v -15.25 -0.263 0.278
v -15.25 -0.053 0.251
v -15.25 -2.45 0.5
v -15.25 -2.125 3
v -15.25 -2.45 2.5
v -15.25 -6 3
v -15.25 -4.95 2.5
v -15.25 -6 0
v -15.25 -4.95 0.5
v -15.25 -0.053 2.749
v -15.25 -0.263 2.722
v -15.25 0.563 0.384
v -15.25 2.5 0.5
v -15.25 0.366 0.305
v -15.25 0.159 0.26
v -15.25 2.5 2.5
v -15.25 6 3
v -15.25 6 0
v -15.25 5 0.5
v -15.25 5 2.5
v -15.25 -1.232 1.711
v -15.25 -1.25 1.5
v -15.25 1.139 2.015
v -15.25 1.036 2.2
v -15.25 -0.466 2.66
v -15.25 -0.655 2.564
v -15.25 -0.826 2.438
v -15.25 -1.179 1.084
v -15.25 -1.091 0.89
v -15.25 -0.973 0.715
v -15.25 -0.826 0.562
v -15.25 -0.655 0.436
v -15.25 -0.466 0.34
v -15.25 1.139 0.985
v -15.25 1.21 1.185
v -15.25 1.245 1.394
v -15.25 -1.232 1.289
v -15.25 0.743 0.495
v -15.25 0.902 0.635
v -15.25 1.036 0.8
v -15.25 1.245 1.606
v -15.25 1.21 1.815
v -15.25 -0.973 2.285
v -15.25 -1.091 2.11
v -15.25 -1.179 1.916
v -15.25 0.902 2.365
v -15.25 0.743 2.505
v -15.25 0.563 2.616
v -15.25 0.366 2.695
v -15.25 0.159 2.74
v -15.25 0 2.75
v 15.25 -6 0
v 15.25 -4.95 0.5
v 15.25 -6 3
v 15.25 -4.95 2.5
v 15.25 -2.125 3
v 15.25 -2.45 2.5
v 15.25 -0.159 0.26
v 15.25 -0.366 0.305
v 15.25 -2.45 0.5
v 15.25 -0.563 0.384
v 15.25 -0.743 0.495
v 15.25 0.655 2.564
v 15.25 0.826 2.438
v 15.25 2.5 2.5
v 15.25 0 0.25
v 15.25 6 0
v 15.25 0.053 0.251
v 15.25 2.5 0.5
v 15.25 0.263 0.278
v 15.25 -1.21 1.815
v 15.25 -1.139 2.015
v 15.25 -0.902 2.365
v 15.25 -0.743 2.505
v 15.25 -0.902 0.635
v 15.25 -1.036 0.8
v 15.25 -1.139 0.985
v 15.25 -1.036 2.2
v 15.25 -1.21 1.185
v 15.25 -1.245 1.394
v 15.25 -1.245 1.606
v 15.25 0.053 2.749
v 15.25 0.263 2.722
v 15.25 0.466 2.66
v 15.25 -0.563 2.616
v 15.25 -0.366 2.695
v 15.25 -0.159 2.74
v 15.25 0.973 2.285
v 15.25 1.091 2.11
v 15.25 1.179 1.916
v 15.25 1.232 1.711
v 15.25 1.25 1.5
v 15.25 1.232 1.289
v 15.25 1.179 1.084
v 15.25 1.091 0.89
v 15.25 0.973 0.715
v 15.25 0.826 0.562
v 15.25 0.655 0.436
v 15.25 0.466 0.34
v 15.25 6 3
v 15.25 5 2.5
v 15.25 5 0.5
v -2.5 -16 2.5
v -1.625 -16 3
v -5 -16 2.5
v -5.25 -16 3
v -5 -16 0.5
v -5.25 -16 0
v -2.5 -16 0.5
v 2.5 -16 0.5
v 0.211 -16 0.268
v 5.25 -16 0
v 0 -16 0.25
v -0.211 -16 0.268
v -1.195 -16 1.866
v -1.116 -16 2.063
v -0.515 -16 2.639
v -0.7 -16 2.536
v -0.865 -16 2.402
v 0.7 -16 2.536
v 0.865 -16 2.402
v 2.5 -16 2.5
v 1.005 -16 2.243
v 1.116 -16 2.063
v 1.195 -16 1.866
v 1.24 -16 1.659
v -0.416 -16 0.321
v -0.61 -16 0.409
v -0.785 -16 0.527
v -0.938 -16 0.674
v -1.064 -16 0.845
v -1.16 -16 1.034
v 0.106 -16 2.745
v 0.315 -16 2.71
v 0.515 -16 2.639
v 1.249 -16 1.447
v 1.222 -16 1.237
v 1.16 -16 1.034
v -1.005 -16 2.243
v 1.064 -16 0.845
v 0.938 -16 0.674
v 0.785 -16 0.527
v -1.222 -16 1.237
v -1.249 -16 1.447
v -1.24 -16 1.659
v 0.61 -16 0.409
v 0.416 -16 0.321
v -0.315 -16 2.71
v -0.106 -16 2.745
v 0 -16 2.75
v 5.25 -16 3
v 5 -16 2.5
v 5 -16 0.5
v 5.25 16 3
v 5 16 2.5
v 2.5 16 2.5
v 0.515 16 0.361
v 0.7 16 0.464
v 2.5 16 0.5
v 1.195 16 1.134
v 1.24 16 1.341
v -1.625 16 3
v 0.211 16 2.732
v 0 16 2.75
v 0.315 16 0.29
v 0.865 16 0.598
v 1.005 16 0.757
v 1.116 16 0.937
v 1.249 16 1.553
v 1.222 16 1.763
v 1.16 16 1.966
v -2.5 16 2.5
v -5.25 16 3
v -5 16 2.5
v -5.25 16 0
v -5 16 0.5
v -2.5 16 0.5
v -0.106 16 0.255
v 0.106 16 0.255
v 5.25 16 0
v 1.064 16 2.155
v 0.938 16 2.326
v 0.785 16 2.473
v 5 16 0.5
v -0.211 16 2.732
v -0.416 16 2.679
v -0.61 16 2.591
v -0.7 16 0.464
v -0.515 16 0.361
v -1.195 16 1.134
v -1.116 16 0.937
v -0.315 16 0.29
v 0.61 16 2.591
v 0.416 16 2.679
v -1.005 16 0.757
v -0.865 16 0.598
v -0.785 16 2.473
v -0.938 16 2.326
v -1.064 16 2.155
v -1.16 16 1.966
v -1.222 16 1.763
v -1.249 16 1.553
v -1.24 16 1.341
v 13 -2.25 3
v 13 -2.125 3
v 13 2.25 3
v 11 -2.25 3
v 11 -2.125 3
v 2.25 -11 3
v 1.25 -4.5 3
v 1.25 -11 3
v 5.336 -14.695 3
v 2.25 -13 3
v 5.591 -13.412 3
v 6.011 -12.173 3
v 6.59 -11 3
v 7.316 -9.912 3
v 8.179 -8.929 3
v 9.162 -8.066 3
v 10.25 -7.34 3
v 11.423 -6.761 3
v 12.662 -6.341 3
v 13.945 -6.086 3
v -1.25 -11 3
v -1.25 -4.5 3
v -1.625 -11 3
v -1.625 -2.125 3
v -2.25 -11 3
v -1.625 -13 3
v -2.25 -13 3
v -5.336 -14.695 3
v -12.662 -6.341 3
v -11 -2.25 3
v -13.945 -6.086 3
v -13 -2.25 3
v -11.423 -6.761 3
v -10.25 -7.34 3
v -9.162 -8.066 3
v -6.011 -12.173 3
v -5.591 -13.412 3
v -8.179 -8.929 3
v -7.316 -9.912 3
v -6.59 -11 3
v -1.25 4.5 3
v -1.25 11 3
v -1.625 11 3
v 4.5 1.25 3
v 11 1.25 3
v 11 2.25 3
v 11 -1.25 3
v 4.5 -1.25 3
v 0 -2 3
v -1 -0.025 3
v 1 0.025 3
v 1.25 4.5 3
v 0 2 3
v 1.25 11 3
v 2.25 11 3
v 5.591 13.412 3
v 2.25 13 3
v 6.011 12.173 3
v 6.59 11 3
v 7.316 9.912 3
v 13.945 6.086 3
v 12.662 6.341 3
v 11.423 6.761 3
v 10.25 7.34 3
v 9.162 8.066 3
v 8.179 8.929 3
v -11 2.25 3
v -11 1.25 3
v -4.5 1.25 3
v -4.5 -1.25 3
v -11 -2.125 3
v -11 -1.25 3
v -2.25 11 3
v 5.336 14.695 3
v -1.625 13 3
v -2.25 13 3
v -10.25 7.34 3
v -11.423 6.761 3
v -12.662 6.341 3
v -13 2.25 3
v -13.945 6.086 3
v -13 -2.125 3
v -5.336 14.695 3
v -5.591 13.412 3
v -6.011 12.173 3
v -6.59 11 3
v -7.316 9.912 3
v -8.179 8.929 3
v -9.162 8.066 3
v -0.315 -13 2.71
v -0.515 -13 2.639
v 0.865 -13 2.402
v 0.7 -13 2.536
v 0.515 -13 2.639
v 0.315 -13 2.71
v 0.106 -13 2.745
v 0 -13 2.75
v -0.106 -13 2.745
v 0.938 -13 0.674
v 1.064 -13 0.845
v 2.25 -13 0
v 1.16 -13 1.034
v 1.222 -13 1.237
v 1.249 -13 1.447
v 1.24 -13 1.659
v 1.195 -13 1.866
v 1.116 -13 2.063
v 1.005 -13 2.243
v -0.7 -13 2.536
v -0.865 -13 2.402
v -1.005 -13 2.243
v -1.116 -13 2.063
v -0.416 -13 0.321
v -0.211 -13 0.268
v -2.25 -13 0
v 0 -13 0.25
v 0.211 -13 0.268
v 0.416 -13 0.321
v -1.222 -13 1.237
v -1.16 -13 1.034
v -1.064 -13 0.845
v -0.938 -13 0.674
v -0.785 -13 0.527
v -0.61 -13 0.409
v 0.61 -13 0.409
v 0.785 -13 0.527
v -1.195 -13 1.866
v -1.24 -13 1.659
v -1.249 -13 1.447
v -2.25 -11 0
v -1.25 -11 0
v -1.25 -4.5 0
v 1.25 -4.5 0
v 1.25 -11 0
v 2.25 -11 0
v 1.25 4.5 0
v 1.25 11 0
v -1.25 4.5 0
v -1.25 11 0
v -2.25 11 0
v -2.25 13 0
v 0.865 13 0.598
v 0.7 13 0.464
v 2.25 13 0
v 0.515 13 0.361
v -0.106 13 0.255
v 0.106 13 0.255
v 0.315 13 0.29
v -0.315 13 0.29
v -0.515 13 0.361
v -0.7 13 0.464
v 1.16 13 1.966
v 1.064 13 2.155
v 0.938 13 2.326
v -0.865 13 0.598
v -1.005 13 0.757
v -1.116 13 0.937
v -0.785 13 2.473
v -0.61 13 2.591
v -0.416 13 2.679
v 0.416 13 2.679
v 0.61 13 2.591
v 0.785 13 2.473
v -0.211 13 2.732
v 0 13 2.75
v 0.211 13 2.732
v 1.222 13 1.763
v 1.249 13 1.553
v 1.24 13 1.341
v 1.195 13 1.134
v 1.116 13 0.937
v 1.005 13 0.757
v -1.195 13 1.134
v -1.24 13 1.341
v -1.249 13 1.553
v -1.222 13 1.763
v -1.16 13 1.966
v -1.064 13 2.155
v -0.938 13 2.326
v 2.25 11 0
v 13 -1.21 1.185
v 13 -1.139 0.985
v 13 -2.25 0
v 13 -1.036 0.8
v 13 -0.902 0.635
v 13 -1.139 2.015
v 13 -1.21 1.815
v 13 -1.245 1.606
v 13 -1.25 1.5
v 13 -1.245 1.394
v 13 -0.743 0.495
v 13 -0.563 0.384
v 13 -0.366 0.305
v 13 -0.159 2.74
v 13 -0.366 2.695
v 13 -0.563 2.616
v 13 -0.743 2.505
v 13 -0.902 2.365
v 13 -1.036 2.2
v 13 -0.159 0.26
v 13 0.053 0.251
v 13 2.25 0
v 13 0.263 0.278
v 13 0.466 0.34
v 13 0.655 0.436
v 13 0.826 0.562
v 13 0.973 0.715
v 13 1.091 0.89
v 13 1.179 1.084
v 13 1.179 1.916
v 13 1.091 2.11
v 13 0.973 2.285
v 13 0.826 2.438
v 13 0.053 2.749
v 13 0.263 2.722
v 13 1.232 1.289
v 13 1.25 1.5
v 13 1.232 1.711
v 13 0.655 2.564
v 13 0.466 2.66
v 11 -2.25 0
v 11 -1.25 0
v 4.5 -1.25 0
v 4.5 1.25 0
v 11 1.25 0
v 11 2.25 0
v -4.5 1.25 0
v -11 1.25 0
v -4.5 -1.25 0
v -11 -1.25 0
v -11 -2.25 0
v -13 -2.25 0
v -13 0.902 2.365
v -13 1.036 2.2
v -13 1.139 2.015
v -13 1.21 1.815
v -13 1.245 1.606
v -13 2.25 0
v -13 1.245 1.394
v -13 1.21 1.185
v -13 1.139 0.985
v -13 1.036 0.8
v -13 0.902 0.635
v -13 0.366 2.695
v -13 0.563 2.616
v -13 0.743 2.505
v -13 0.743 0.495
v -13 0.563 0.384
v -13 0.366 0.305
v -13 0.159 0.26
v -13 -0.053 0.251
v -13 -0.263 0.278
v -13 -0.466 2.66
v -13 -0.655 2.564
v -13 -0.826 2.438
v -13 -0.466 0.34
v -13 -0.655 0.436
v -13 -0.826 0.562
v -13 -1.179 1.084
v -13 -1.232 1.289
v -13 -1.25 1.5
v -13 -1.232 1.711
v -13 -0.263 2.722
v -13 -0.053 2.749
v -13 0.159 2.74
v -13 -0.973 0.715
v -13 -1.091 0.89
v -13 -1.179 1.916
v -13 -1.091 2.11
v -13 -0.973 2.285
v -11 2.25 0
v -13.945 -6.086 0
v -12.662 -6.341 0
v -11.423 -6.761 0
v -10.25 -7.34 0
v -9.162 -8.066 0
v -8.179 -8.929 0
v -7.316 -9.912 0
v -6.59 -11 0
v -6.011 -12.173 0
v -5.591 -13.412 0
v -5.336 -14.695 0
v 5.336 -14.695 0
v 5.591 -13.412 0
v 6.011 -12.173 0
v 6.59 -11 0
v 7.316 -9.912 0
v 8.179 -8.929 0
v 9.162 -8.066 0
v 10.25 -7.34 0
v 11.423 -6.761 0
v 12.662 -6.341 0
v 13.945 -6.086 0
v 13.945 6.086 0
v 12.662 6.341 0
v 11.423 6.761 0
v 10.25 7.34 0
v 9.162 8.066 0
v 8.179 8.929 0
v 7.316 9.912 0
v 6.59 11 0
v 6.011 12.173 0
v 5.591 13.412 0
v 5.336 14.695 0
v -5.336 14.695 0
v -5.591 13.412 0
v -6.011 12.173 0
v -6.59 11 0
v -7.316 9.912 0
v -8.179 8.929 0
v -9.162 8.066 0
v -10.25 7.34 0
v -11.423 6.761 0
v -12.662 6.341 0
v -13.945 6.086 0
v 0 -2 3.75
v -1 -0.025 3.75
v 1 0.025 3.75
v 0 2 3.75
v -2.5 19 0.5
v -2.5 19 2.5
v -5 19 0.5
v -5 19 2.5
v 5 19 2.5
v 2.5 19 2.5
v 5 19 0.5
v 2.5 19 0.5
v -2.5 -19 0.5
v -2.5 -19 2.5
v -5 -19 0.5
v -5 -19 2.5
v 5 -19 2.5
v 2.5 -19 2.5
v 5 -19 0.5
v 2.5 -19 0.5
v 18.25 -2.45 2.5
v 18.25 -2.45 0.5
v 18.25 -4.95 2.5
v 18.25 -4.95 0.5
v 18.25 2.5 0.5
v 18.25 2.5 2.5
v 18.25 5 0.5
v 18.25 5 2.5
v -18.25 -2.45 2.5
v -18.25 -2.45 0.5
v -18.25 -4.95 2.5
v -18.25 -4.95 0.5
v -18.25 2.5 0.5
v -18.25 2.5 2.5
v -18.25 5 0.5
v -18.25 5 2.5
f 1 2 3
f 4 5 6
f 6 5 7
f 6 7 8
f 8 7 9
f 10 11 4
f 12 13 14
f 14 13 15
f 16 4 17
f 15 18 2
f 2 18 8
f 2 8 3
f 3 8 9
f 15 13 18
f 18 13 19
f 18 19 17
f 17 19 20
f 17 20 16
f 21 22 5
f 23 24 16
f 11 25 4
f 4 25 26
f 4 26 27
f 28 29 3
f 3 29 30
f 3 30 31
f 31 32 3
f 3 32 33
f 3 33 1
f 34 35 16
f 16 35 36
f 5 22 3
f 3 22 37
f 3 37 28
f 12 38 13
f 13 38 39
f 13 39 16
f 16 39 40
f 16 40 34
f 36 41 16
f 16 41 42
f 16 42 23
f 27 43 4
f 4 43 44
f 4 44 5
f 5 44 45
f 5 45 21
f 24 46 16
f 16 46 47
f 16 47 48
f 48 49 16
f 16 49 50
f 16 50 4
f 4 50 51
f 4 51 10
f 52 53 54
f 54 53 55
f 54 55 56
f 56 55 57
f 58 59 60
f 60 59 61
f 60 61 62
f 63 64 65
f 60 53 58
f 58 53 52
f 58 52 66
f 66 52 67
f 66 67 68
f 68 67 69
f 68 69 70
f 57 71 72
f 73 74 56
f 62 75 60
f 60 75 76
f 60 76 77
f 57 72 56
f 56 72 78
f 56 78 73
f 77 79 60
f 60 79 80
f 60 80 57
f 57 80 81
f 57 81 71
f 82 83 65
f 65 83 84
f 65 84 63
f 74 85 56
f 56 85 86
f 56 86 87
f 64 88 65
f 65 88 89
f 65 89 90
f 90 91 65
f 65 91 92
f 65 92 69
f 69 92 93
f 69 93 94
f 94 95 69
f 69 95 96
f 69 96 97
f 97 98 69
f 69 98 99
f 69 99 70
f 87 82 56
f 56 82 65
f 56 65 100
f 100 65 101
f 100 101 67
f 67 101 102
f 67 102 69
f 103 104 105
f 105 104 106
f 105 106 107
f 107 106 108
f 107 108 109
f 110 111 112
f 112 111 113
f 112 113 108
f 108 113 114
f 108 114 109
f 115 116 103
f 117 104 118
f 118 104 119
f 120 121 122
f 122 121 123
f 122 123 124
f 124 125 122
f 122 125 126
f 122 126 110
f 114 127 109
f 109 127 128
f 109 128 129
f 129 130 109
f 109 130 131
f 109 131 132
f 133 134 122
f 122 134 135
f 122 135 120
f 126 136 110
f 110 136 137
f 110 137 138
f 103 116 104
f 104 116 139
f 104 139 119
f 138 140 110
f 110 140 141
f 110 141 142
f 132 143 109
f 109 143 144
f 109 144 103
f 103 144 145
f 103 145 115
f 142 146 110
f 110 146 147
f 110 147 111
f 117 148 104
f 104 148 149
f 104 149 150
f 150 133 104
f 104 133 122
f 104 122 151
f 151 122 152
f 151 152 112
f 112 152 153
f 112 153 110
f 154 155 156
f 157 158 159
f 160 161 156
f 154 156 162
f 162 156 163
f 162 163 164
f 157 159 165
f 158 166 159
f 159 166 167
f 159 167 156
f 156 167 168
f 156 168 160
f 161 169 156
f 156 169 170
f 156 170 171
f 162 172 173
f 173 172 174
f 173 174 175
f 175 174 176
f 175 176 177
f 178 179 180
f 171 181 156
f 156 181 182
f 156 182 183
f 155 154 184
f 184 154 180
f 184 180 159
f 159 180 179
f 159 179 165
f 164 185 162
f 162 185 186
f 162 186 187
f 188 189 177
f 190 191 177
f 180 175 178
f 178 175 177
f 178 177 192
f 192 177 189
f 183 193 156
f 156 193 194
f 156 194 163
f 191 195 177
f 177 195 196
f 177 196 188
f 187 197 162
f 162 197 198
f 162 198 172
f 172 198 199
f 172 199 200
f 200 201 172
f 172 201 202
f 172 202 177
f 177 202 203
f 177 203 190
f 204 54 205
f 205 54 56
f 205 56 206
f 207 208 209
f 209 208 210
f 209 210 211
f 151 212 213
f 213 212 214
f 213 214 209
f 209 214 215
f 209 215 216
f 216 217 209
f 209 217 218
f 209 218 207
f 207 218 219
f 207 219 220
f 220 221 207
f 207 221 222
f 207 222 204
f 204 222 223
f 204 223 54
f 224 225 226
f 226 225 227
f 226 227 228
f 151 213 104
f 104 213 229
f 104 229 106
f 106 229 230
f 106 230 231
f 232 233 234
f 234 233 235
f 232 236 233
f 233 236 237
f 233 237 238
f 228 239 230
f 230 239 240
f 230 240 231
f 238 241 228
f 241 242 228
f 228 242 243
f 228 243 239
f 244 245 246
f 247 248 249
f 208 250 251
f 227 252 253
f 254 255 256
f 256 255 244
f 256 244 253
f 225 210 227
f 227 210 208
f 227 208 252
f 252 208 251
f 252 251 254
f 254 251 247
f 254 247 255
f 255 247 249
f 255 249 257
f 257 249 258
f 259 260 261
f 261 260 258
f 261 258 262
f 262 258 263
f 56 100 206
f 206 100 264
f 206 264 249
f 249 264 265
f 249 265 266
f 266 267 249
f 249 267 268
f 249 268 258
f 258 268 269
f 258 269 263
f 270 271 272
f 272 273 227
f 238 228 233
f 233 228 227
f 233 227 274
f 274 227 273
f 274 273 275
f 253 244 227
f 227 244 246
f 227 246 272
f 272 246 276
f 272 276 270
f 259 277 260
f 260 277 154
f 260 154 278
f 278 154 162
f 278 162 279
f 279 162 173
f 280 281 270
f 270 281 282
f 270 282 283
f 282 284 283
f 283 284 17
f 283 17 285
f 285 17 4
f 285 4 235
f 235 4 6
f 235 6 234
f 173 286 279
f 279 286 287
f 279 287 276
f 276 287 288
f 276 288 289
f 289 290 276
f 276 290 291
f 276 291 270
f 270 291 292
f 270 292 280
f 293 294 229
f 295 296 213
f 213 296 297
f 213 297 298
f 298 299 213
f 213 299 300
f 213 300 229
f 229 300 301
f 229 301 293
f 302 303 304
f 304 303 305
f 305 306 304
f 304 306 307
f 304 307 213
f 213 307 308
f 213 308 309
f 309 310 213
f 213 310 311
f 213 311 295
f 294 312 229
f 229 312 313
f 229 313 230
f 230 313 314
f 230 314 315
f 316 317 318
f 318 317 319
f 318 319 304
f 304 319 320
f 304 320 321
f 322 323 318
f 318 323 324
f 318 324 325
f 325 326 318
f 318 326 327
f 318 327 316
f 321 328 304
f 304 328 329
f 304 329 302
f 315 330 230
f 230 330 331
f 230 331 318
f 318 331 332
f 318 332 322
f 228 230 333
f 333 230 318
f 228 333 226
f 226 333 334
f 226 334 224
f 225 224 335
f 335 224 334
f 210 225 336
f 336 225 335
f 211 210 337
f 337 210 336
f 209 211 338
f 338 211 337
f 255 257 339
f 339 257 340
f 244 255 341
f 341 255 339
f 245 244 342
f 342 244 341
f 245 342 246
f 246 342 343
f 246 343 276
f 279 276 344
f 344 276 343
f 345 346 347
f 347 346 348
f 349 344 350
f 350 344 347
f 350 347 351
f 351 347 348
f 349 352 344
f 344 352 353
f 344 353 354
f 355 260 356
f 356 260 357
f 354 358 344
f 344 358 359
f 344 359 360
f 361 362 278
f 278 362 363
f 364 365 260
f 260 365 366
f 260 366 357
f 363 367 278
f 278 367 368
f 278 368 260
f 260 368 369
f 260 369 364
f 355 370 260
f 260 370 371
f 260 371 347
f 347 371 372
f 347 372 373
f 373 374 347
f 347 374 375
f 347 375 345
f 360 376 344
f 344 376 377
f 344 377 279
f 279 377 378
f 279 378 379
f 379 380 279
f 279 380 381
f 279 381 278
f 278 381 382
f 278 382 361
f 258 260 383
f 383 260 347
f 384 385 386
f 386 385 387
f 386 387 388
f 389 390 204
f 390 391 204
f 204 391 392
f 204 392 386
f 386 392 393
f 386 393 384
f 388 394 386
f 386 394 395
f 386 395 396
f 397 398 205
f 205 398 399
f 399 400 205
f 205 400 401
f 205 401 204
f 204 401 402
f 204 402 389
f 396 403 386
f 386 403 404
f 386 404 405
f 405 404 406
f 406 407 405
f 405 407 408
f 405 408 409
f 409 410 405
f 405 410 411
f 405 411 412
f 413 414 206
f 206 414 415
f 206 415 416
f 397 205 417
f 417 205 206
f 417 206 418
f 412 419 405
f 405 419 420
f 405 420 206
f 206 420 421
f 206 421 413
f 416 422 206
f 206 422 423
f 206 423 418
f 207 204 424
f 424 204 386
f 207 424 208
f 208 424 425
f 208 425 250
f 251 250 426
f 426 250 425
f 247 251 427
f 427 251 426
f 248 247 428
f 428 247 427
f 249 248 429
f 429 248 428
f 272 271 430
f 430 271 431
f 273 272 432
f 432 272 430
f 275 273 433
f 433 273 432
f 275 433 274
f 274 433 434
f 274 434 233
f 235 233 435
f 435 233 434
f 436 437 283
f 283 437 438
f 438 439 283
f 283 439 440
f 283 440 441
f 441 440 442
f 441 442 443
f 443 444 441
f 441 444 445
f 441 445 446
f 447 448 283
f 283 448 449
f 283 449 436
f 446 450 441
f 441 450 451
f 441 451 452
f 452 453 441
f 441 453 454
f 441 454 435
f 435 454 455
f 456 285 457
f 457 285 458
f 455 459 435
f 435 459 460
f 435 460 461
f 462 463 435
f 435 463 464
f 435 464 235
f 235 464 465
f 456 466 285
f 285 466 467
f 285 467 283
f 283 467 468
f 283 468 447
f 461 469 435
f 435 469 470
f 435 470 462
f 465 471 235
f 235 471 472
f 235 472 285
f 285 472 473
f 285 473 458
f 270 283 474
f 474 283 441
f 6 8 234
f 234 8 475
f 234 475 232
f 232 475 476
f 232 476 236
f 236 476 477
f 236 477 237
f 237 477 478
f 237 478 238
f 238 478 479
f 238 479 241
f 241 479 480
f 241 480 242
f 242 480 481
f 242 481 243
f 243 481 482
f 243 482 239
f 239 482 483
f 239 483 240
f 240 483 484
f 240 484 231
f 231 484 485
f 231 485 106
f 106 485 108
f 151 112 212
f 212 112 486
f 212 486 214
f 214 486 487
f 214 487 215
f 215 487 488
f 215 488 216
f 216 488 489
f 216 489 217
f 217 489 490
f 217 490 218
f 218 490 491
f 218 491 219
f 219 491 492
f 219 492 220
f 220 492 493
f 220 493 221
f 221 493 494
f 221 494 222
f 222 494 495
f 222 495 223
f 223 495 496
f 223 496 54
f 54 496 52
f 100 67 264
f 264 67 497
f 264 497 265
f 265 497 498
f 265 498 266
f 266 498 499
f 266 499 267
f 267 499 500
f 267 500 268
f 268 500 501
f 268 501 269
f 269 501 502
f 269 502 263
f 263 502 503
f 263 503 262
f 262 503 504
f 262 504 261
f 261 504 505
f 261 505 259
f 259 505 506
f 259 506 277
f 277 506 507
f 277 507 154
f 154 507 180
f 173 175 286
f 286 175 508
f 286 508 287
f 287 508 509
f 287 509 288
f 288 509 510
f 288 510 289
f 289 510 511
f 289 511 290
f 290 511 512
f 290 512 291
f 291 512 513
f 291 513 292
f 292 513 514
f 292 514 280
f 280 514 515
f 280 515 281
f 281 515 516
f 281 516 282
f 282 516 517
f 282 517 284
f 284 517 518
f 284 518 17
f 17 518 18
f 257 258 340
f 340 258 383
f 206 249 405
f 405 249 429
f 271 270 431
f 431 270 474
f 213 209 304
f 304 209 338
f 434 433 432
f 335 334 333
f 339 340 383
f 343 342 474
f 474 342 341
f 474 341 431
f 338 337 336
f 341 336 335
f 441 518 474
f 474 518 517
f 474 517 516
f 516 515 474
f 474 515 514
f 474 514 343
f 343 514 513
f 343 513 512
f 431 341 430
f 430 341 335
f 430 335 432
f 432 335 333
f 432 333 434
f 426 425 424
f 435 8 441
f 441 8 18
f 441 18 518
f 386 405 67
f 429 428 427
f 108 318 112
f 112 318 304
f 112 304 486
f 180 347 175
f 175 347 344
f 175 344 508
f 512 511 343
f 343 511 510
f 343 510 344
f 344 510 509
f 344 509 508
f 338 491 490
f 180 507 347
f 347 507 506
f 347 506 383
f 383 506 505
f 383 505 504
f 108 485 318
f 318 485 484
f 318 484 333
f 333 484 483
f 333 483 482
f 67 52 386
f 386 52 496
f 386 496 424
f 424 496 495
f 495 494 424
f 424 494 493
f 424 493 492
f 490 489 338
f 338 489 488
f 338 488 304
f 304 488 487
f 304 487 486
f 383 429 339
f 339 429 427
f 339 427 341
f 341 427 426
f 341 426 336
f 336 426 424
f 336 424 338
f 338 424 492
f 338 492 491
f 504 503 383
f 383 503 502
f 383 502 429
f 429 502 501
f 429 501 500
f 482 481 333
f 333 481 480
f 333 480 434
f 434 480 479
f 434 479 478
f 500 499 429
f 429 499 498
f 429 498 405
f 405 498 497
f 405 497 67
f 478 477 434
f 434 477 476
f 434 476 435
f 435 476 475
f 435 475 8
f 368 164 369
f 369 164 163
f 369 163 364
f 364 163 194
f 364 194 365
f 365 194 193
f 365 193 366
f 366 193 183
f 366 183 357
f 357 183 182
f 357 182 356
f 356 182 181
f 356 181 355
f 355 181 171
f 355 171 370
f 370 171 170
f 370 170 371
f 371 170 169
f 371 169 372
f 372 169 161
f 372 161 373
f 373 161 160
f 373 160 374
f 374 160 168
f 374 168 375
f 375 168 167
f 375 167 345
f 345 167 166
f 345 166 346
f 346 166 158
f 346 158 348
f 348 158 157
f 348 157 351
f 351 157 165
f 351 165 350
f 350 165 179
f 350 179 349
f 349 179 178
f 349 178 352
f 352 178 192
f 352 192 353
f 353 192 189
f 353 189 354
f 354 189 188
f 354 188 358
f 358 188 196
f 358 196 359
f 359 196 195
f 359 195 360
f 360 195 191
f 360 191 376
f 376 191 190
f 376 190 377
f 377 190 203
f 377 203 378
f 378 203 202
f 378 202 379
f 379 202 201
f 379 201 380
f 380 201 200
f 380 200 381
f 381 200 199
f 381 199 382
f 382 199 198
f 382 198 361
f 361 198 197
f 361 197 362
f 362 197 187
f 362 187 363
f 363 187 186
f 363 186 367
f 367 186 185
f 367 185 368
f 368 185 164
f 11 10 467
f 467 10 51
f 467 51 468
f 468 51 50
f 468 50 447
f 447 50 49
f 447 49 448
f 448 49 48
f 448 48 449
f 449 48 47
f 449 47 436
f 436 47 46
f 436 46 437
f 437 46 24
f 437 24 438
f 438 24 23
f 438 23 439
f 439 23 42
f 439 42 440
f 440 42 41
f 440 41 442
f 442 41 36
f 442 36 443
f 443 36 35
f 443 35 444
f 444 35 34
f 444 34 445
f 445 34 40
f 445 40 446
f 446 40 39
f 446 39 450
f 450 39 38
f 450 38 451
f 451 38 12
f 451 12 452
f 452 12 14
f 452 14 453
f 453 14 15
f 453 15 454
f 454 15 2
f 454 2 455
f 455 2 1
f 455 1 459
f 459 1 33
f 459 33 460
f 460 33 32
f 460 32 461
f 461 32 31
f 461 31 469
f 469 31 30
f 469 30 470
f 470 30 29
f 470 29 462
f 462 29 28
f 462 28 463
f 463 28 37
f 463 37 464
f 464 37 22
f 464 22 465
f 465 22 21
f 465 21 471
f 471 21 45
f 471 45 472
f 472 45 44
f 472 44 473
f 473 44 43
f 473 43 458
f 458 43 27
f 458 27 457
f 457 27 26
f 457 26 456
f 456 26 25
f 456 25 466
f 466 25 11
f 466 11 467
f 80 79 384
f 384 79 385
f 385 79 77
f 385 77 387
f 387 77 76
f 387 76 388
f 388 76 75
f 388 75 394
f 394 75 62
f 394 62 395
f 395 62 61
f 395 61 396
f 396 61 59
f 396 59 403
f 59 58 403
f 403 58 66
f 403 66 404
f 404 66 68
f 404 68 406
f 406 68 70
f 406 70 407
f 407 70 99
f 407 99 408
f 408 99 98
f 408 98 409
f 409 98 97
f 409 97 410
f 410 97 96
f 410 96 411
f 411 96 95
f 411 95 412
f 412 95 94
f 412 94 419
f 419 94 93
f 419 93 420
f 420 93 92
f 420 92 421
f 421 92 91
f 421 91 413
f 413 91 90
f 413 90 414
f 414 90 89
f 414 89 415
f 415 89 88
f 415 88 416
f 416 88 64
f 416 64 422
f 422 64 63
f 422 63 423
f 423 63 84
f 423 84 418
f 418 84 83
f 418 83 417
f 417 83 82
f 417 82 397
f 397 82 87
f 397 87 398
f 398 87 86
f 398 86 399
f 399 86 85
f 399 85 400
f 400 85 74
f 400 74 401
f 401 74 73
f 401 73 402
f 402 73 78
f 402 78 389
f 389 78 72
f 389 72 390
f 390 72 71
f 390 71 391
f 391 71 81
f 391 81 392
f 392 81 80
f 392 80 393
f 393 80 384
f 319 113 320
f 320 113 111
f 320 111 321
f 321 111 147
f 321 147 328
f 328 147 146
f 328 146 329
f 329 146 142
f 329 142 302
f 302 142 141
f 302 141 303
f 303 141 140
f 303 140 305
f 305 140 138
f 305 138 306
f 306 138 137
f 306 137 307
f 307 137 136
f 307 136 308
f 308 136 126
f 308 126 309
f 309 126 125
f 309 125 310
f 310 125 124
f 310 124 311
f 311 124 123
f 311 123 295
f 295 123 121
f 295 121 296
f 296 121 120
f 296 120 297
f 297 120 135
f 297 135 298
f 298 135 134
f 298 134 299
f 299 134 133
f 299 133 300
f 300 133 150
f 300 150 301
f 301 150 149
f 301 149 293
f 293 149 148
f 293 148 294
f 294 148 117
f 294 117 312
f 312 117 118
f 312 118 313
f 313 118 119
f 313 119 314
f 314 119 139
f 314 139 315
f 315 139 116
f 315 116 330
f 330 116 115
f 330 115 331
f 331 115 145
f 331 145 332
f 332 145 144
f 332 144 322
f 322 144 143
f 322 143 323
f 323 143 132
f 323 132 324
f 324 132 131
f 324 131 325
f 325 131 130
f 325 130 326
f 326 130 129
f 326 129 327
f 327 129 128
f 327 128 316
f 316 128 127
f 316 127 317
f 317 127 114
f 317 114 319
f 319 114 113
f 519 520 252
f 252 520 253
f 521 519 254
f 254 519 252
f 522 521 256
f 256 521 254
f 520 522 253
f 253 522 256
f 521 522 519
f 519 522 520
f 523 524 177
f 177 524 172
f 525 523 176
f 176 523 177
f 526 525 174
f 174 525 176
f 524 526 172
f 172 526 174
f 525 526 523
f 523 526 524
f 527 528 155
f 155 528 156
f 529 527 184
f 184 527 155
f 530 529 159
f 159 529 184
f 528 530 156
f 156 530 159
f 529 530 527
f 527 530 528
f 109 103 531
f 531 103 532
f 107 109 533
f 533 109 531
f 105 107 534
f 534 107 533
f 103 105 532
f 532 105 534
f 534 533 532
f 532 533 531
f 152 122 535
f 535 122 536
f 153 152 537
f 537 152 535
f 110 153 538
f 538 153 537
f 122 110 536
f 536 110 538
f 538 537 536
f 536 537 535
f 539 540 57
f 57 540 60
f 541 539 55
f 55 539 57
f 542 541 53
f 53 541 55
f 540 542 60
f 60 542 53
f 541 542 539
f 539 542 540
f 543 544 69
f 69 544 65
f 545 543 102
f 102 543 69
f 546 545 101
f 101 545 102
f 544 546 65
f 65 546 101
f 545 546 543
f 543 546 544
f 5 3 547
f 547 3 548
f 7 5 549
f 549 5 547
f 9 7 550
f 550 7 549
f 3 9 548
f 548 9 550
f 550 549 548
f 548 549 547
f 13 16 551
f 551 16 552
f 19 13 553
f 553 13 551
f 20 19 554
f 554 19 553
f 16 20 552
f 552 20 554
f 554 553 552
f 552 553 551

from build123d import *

# Parameters (mm, degrees)
EXTRUDE_2_DEPTH          = 3
SKETCH_2_R               = 1.25
CUT_EXTRUDE_1_DEPTH      = 4
PATTERN_CIRCULAR_1_COUNT = 4
EXTRUDE_3_DEPTH          = 0.75
SKETCH_4_W               = 2.5
SKETCH_4_H               = 2
EXTRUDE_5_DEPTH          = 3
PATTERN_LINEAR_1_COUNT   = 2
PATTERN_LINEAR_1_PITCH   = 35
SKETCH_5_W               = 2
SKETCH_5_H               = 2.5
EXTRUDE_6_DEPTH          = 3
PATTERN_LINEAR_2_COUNT   = 2
PATTERN_LINEAR_2_PITCH   = 33.5


with BuildPart() as part:
    # 草图1 → 凸台-拉伸2 (new body)
    with BuildSketch(Plane.XY):
        with BuildLine():
            Line((-5.25, -16), (-5, -16))
            Line((-5, -16), (0, -16))
            Line((0, -16), (5, -16))
            Line((5, -16), (5.25, -16))
            ThreePointArc((5.25, -16), (8.178932188, -8.928932188), (15.25, -6))
            Line((15.25, -6), (15.25, -5))
            Line((15.25, -5), (15.25, 0))
            Line((15.25, 0), (15.25, 5))
            Line((15.25, 5), (15.25, 6))
            ThreePointArc((15.25, 6), (8.178932188, 8.928932188), (5.25, 16))
            Line((5.25, 16), (5, 16))
            Line((5, 16), (0, 16))
            Line((0, 16), (-5, 16))
            Line((-5, 16), (-5.25, 16))
            ThreePointArc((-5.25, 16), (-8.178932188, 8.928932188), (-15.25, 6))
            Line((-15.25, 6), (-15.25, 5))
            Line((-15.25, 5), (-15.25, 0))
            Line((-15.25, 0), (-15.25, -5))
            Line((-15.25, -5), (-15.25, -6))
            ThreePointArc((-15.25, -6), (-8.178932188, -8.928932188), (-5.25, -16))
        make_face()
        Polygon((-1.25, -11), (-1.25, -4.5), (1.25, -4.5), (1.25, -11), (2.25, -11), (2.25, -13), (0, -13), (-2.25, -13), (-2.25, -11), align=None, mode=Mode.SUBTRACT)
        Polygon((-11, -2.25), (-13, -2.25), (-13, 0), (-13, 2.25), (-11, 2.25), (-11, 1.25), (-4.5, 1.25), (-4.5, -1.25), (-11, -1.25), align=None, mode=Mode.SUBTRACT)
        Polygon((4.5, -1.25), (4.5, 1.25), (11, 1.25), (11, 2.25), (13, 2.25), (13, 0), (13, -2.25), (11, -2.25), (11, -1.25), align=None, mode=Mode.SUBTRACT)
        Polygon((-2.25, 11), (-2.25, 13), (0, 13), (2.25, 13), (2.25, 11), (1.25, 11), (1.25, 4.5), (-1.25, 4.5), (-1.25, 11), align=None, mode=Mode.SUBTRACT)
    extrude(amount=EXTRUDE_2_DEPTH)

    # 草图2 → 切除-拉伸1 (cut)
    with BuildSketch(Plane(origin=(0, 16, 0), x_dir=(1, 0, 0), z_dir=(0, 1, 0))):
        with Locations((0, -1.5)):
            Circle(SKETCH_2_R)
    cut_extrude_1 = extrude(amount=-CUT_EXTRUDE_1_DEPTH, mode=Mode.SUBTRACT)

    # 阵列(圆周)1: 切除-拉伸1 ×4 about axis
    pattern_circular_1_axis = Axis((0, 0, 3), (0, 0, 1))
    for i in range(1, PATTERN_CIRCULAR_1_COUNT):
        add(cut_extrude_1.rotate(pattern_circular_1_axis, i * 360 / PATTERN_CIRCULAR_1_COUNT), mode=Mode.SUBTRACT)

    # 草图3 → 凸台-拉伸3 (add)
    with BuildSketch(Plane.XY.offset(3)):
        Polygon((1, 0.025113601), (0, 0), (0, 2), align=None)
        Polygon((-1, -0.025113601), (0, 2), (0, 0), align=None)
        Polygon((-1, -0.025113601), (0, 0), (0, -2), align=None)
        Polygon((1, 0.025113601), (0, -2), (0, 0), align=None)
    extrude(amount=EXTRUDE_3_DEPTH)

    # 草图4 → 凸台-拉伸5 (add)
    with BuildSketch(Plane(origin=(0, 16, 0), x_dir=(1, 0, 0), z_dir=(0, 1, 0))):
        with Locations((3.75, -1.5)):
            Rectangle(SKETCH_4_W, SKETCH_4_H)
        with Locations((-3.75, -1.5)):
            Rectangle(SKETCH_4_W, SKETCH_4_H)
    extrude_5 = extrude(amount=EXTRUDE_5_DEPTH)

    # 阵列(线性)1: 凸台-拉伸5 ×2
    with Locations(*[(0, -i * PATTERN_LINEAR_1_PITCH, 0) for i in range(1, PATTERN_LINEAR_1_COUNT)]):
        add(extrude_5)

    # 草图5 → 凸台-拉伸6 (add)
    with BuildSketch(Plane(origin=(15.25, 0, 0), x_dir=(0, 0, -1), z_dir=(1, 0, 0))):
        with Locations((-1.5, 3.75)):
            Rectangle(SKETCH_5_W, SKETCH_5_H)
        with Locations((-1.5, -3.699772798)):
            Rectangle(SKETCH_5_W, SKETCH_5_H)
    extrude_6 = extrude(amount=EXTRUDE_6_DEPTH)

    # 阵列(线性)2: 凸台-拉伸6 ×2
    with Locations(*[(-i * PATTERN_LINEAR_2_PITCH, 0, 0) for i in range(1, PATTERN_LINEAR_2_COUNT)]):
        add(extrude_6)


solid = part.part
